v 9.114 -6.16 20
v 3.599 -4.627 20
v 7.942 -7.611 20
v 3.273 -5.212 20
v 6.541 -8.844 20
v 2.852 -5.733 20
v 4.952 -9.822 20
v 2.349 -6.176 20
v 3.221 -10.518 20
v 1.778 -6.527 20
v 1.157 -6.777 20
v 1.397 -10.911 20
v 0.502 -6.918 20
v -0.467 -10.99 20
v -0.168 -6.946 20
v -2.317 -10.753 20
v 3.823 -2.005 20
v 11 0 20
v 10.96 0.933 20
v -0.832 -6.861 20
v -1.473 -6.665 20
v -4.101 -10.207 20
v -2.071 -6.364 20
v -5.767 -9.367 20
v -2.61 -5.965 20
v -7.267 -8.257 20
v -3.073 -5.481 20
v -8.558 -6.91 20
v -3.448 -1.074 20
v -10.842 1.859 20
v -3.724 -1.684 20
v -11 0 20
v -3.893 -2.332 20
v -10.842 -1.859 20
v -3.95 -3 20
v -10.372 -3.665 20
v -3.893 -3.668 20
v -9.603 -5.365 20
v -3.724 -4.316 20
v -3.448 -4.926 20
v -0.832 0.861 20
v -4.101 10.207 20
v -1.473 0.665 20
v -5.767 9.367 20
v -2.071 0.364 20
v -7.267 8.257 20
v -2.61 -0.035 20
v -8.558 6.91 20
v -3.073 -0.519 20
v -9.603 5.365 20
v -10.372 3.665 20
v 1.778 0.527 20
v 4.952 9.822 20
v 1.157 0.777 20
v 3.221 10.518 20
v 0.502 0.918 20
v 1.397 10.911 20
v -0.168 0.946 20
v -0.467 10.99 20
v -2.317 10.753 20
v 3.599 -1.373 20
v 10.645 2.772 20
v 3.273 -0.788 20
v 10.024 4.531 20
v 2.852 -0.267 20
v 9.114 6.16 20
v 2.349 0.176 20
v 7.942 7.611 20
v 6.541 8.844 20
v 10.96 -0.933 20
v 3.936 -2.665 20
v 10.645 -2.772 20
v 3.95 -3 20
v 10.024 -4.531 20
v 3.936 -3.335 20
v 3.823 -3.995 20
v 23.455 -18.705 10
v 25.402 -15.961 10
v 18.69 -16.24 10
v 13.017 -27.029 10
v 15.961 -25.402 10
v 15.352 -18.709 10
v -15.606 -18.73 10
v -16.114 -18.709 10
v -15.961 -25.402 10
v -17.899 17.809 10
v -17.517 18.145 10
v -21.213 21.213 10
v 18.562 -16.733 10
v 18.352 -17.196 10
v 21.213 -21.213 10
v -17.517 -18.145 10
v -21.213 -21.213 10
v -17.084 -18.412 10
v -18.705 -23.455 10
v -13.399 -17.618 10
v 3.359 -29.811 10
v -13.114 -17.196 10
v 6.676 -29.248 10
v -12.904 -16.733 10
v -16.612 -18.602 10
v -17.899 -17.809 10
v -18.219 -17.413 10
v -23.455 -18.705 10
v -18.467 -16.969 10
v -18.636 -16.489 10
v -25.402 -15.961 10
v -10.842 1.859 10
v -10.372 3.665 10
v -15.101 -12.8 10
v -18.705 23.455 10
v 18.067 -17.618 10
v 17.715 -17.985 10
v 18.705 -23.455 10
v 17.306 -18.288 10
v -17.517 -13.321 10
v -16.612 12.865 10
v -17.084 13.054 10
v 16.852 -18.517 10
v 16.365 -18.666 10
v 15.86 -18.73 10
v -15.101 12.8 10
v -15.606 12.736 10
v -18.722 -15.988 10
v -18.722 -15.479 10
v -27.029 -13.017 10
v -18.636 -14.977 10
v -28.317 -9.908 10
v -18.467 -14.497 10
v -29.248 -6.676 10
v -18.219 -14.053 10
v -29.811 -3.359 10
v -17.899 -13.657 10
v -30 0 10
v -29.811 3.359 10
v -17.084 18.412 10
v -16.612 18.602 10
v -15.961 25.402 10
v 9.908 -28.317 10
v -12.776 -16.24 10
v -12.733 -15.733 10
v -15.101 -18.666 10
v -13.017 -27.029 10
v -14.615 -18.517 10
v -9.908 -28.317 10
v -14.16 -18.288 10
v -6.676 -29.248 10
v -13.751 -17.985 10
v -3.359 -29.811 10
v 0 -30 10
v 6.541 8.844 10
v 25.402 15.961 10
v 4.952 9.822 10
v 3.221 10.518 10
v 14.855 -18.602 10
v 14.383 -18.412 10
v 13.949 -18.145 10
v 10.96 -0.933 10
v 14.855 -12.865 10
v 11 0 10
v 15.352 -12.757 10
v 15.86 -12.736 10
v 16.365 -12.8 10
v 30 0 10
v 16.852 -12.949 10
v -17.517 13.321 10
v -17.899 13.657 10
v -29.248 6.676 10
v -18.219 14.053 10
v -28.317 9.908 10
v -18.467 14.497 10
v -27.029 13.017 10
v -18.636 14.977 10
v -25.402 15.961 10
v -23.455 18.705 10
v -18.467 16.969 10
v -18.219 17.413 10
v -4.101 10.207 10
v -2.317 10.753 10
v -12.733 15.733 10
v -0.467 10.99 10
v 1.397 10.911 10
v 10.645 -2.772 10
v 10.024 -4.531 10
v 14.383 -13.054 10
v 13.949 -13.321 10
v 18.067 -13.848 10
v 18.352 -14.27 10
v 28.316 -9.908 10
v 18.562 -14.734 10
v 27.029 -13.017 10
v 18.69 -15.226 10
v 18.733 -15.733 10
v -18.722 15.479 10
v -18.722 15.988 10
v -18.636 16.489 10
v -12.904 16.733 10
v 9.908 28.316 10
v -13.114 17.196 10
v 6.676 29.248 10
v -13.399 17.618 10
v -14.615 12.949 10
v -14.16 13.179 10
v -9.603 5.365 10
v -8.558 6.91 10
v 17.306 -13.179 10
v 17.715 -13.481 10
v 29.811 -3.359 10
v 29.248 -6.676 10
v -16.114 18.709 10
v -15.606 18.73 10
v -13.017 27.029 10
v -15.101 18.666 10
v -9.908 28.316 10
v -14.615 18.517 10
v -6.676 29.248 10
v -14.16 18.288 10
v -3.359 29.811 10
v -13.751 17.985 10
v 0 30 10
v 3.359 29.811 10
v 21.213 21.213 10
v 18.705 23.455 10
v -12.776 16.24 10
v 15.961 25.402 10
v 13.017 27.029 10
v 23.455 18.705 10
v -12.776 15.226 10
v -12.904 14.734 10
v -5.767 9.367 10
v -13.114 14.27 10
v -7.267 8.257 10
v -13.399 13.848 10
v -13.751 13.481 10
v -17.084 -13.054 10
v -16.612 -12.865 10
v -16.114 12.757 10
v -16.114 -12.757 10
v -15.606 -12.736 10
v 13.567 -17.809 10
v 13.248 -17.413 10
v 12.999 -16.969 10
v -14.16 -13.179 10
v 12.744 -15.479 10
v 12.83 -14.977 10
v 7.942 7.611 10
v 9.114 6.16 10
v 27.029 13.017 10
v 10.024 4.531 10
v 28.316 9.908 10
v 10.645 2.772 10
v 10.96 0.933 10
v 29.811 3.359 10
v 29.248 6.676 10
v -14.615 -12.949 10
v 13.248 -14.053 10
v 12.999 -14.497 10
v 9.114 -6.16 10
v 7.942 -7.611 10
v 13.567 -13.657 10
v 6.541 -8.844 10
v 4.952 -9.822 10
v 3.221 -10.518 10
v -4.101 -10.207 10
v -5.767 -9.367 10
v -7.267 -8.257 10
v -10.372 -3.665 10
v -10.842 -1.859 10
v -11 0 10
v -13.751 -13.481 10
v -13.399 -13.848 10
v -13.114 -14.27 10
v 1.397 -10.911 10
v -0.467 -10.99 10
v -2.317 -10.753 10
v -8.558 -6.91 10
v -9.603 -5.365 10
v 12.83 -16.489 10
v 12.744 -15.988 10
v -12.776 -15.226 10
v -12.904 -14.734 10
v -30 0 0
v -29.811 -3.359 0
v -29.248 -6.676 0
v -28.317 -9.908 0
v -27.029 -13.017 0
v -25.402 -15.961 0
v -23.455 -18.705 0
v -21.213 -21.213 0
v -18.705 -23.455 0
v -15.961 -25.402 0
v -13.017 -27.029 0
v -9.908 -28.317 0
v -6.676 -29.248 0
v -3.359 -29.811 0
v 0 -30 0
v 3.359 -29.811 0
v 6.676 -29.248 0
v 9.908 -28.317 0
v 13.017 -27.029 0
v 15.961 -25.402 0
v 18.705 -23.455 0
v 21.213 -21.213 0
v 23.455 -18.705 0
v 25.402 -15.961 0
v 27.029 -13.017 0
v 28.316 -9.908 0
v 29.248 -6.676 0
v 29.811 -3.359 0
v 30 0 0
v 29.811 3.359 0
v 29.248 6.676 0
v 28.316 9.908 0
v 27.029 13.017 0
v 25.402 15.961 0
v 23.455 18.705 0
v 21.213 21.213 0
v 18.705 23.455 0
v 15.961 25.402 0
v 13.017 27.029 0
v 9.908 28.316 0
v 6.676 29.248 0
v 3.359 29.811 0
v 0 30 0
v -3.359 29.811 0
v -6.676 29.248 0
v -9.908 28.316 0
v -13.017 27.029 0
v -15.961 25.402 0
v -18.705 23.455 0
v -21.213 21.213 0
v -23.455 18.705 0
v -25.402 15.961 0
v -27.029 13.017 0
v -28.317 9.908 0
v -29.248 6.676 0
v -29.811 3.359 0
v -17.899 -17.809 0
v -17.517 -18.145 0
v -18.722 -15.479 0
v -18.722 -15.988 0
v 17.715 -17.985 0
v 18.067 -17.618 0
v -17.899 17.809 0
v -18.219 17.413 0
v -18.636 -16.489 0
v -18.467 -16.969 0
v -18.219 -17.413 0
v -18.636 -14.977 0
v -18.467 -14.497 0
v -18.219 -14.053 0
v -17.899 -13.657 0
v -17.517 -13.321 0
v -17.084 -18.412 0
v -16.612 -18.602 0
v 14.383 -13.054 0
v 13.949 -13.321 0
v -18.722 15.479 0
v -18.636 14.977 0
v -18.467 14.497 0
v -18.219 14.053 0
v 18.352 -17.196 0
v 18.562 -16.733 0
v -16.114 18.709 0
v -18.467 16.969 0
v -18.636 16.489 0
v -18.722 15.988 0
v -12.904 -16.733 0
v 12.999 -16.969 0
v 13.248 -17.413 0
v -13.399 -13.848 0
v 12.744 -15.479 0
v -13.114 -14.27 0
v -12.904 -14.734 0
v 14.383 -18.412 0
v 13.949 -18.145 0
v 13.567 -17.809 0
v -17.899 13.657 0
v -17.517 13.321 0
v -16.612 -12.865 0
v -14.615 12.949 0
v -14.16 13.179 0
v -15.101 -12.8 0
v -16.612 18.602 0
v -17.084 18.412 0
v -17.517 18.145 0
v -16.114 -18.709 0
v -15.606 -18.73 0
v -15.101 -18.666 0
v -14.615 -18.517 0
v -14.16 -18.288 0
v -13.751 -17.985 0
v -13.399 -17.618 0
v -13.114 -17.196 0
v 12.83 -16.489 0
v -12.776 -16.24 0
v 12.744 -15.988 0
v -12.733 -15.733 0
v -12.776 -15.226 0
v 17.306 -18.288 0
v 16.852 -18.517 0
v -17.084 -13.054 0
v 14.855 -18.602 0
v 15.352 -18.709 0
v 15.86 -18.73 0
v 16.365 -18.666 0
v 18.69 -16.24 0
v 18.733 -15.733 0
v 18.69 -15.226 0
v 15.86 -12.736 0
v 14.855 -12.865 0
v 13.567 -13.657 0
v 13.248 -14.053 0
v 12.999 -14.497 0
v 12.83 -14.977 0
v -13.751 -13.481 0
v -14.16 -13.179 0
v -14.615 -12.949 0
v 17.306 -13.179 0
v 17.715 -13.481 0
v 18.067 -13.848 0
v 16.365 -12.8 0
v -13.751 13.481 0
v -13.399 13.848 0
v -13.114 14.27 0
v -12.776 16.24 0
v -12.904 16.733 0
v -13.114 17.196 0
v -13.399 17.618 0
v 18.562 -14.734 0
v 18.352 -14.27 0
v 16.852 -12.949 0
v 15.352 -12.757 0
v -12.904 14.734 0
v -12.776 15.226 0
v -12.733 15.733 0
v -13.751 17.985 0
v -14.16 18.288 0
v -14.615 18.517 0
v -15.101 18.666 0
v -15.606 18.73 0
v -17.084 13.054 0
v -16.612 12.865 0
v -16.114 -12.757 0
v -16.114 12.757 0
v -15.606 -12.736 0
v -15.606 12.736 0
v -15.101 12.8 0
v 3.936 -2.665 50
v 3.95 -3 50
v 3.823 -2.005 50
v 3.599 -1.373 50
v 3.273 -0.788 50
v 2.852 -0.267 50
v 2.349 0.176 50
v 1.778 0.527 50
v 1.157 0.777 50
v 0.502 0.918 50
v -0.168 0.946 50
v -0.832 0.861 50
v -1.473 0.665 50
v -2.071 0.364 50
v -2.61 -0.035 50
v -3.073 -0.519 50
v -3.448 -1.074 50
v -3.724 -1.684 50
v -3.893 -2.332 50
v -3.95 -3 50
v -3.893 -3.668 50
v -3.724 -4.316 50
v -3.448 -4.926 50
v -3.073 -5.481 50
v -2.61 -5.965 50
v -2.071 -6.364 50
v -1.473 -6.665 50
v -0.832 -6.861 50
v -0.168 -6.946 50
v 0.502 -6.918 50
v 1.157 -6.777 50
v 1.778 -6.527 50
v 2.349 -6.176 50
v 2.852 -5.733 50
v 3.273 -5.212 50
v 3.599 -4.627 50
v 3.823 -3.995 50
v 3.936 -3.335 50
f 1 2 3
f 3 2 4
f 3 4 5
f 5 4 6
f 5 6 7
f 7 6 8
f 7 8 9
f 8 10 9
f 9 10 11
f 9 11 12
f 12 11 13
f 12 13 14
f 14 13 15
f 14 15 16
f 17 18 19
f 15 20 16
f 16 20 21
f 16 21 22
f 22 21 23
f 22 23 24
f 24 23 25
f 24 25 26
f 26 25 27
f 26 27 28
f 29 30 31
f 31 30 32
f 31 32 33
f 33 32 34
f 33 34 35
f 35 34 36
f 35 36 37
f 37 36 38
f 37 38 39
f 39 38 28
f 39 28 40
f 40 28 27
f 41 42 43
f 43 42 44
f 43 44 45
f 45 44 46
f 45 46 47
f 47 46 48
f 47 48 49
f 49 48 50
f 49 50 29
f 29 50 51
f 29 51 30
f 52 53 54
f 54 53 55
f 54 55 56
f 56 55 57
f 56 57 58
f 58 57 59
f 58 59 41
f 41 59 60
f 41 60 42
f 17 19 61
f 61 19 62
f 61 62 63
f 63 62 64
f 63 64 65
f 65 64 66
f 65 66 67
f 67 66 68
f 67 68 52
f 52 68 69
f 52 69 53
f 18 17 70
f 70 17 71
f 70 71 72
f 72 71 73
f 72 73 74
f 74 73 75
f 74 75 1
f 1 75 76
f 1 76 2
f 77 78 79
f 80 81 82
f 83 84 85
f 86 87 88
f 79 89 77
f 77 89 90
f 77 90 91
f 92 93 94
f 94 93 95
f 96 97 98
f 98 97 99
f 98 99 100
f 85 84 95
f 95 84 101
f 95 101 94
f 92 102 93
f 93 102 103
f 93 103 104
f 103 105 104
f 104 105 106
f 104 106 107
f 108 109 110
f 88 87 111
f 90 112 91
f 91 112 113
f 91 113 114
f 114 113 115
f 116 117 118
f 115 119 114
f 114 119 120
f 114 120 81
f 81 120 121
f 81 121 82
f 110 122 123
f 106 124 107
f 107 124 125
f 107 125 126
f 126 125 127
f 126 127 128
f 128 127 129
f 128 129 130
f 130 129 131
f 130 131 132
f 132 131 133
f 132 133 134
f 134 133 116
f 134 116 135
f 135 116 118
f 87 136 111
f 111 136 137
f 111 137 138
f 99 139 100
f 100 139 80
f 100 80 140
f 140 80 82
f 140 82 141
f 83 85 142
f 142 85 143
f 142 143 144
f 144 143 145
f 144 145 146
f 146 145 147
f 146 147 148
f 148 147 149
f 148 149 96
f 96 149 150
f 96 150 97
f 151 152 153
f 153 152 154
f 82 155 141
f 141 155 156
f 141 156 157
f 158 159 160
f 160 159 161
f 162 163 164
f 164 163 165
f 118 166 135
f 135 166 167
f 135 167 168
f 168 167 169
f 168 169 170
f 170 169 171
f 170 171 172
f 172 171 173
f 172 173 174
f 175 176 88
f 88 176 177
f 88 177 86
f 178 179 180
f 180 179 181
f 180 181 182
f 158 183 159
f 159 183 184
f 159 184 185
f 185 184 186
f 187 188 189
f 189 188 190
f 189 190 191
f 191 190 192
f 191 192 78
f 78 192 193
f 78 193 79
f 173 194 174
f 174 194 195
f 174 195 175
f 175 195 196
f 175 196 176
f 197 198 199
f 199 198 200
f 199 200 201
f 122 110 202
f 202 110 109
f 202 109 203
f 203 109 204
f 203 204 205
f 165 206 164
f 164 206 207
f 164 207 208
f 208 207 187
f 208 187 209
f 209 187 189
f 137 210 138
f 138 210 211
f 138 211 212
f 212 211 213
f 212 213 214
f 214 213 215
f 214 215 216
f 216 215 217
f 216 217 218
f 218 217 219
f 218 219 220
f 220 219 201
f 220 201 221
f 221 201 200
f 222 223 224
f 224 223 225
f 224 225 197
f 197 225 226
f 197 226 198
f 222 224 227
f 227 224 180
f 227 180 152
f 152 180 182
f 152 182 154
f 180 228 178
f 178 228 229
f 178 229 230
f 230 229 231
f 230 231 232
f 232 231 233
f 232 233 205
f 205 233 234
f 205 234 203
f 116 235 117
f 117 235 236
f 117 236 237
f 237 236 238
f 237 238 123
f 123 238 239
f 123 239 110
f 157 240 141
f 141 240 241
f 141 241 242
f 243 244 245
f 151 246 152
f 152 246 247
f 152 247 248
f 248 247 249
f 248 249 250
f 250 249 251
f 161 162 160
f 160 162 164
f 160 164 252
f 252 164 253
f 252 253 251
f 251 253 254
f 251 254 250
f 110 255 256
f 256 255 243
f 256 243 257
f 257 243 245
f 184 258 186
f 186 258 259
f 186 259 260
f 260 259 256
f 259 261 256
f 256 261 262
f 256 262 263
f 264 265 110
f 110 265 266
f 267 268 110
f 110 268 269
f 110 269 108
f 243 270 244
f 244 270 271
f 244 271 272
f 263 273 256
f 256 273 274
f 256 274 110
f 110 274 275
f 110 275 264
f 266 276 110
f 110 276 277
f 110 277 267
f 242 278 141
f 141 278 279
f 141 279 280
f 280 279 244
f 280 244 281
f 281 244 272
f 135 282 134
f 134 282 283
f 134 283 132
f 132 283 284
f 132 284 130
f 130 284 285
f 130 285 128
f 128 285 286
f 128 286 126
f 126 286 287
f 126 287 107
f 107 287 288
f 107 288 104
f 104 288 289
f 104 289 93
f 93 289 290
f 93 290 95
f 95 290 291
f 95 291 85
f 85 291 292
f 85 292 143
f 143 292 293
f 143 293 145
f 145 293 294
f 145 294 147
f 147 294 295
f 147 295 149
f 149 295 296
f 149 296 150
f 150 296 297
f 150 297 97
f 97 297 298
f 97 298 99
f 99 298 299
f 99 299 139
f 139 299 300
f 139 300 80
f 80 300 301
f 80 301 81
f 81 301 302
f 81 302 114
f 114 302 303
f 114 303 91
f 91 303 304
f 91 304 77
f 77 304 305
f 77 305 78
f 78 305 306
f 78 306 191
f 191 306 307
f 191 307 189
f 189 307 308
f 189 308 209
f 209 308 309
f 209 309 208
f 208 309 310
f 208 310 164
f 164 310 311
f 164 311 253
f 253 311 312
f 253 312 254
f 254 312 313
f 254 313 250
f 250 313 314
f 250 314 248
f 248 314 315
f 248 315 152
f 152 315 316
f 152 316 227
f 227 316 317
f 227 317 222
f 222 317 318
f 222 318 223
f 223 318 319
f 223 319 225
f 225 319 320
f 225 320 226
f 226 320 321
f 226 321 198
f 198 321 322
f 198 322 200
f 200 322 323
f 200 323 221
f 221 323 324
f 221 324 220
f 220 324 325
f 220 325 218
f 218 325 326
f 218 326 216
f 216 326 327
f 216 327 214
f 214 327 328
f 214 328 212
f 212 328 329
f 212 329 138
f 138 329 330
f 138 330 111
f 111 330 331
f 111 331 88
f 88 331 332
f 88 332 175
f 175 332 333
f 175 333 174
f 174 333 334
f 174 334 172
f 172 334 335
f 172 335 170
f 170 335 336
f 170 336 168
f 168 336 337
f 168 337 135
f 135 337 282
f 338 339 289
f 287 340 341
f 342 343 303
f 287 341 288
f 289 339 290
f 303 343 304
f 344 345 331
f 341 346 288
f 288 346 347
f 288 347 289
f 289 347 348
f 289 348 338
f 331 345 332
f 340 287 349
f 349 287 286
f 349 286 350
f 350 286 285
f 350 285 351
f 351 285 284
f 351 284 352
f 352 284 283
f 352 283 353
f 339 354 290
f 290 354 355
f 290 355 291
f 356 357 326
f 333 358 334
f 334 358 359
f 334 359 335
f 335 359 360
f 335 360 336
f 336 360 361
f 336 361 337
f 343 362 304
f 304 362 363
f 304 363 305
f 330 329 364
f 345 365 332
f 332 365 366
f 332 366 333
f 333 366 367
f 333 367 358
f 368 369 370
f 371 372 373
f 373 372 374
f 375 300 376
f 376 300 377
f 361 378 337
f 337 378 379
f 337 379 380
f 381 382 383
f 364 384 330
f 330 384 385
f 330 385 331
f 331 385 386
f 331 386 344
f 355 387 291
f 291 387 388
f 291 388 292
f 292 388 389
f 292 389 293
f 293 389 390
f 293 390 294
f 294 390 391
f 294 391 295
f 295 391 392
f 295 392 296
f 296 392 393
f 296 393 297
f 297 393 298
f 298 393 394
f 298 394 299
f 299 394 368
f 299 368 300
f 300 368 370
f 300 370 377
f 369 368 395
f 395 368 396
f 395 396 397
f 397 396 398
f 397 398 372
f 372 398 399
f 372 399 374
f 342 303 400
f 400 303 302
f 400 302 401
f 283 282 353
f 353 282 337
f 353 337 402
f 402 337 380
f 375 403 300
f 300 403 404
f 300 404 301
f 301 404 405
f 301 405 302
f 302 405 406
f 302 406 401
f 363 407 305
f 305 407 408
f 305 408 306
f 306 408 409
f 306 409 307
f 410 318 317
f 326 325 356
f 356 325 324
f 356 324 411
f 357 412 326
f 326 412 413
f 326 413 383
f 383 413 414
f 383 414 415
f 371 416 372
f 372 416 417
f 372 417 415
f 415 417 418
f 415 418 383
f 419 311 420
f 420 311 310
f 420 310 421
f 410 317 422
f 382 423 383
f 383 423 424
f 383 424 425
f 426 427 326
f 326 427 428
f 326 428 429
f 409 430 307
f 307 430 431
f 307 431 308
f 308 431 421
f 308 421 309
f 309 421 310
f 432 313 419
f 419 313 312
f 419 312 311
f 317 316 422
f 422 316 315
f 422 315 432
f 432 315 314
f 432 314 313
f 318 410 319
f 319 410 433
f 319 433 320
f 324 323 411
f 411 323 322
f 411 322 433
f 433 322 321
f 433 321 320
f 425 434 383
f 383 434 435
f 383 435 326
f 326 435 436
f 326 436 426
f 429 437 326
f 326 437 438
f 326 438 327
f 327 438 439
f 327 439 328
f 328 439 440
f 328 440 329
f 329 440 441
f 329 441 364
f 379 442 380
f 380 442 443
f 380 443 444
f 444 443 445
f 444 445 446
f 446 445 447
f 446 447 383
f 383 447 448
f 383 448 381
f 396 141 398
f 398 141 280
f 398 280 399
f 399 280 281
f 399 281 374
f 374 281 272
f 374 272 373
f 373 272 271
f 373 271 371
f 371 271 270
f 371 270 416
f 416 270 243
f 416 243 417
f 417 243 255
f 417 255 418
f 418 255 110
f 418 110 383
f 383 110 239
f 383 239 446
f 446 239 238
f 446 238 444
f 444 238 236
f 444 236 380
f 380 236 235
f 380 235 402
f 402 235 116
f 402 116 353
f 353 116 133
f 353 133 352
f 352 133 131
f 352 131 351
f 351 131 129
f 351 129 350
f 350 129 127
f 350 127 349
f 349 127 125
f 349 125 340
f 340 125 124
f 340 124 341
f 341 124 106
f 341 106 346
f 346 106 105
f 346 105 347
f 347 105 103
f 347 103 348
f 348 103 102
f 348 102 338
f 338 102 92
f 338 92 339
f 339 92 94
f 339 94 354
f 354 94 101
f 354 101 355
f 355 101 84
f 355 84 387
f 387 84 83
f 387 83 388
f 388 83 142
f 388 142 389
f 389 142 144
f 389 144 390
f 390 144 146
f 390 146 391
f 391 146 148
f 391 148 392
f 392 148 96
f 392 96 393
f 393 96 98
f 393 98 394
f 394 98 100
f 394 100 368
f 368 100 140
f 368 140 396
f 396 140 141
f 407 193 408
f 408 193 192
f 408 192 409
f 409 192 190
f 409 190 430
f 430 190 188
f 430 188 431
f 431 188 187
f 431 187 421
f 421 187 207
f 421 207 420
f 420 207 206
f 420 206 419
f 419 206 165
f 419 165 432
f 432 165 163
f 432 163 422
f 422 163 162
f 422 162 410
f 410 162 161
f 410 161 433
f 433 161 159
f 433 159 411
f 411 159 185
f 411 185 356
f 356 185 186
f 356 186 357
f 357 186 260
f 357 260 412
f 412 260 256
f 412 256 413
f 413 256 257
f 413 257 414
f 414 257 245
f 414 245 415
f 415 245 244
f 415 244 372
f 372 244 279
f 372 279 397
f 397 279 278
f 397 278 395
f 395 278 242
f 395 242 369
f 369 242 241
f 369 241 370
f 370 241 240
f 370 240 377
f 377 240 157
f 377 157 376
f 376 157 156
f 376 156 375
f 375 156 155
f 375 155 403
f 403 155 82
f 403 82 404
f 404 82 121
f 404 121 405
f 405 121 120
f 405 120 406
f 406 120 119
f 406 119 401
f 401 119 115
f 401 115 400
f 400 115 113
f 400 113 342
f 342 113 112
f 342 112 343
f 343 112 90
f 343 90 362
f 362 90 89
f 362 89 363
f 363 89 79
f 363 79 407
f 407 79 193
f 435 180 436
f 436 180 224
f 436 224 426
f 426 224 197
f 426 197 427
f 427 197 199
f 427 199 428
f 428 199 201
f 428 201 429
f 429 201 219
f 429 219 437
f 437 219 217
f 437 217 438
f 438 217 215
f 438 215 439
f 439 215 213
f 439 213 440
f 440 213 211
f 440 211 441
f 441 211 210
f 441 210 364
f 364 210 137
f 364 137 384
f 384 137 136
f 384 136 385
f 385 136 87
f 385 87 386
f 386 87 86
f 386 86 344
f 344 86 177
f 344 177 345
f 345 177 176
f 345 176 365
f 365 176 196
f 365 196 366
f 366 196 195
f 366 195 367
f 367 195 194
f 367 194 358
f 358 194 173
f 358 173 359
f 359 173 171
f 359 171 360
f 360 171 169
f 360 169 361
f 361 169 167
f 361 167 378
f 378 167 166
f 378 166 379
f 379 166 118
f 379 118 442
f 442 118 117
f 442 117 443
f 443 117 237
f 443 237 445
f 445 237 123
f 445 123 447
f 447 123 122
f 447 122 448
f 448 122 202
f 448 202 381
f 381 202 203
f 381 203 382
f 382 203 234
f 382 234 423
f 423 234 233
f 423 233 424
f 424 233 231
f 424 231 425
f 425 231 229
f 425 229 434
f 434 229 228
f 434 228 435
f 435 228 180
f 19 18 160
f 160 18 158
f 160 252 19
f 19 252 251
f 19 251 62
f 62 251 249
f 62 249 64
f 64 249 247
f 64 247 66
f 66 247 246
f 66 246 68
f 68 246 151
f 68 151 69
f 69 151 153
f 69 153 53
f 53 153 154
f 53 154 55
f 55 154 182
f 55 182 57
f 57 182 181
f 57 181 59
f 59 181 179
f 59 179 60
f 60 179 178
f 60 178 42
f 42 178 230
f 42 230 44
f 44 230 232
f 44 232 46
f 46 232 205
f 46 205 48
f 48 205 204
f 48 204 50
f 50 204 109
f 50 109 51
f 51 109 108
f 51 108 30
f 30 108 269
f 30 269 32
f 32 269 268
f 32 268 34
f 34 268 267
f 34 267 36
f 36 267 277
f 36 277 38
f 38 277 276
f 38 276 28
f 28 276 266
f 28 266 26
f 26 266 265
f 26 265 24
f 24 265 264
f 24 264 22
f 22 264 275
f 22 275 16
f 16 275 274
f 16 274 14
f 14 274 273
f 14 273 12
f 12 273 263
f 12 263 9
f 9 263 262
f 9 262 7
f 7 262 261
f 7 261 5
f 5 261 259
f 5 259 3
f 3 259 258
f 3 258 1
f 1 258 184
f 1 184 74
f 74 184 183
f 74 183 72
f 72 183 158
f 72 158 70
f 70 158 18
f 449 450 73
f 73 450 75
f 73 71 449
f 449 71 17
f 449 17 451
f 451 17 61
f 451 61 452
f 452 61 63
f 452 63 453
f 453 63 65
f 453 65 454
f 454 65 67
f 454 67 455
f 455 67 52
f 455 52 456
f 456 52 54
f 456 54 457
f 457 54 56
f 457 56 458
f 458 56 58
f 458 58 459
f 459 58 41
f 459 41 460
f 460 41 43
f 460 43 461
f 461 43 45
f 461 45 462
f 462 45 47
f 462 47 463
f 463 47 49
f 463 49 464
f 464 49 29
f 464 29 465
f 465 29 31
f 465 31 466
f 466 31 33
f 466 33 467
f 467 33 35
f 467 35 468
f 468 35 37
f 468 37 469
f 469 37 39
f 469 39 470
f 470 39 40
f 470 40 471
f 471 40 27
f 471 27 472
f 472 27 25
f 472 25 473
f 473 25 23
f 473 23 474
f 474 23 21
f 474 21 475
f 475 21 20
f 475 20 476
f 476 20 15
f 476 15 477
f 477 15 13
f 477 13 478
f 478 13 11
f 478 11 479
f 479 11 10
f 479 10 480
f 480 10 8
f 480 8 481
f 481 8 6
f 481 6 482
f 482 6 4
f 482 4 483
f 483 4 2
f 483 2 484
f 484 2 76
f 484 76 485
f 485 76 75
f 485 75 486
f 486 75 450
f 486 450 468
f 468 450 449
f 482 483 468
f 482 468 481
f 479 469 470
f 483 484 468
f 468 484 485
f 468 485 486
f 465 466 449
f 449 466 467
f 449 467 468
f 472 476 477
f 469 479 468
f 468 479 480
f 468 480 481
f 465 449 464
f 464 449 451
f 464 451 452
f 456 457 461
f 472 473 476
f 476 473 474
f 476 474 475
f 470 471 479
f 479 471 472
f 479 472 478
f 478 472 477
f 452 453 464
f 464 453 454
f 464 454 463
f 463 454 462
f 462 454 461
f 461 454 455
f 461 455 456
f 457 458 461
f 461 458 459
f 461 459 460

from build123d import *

# Parameters (mm, degrees)
SKETCH1_R             = 30
BOSS_EXTRUDE1_DEPTH   = 10
F_6_0MM_DOWEL_HOLE1_D = 6
SKETCH2_R             = 11
BOSS_EXTRUDE2_DEPTH   = 10
SKETCH9_R             = 3.95
BOSS_EXTRUDE3_DEPTH   = 30


with BuildPart() as part:
    # Sketch1 → Boss-Extrude1 (new body)
    with BuildSketch(Plane.XY):
        Circle(SKETCH1_R)
    extrude(amount=BOSS_EXTRUDE1_DEPTH)

    # Ø6.0mm Dowel Hole1 (through all)
    with Locations(Plane.XY.offset(10)):
        with Locations((-15.733125881, 15.733125881), (15.733125881, -15.733125881), (-15.733125881, -15.733125881)):
            Hole(F_6_0MM_DOWEL_HOLE1_D / 2)

    # Sketch2 → Boss-Extrude2 (add)
    with BuildSketch(Plane.XY.offset(10)):
        Circle(SKETCH2_R)
    extrude(amount=BOSS_EXTRUDE2_DEPTH)

    # Sketch9 → Boss-Extrude3 (add)
    with BuildSketch(Plane.XY.offset(20)):
        with Locations((0, -3)):
            Circle(SKETCH9_R)
    extrude(amount=BOSS_EXTRUDE3_DEPTH)


solid = part.part
